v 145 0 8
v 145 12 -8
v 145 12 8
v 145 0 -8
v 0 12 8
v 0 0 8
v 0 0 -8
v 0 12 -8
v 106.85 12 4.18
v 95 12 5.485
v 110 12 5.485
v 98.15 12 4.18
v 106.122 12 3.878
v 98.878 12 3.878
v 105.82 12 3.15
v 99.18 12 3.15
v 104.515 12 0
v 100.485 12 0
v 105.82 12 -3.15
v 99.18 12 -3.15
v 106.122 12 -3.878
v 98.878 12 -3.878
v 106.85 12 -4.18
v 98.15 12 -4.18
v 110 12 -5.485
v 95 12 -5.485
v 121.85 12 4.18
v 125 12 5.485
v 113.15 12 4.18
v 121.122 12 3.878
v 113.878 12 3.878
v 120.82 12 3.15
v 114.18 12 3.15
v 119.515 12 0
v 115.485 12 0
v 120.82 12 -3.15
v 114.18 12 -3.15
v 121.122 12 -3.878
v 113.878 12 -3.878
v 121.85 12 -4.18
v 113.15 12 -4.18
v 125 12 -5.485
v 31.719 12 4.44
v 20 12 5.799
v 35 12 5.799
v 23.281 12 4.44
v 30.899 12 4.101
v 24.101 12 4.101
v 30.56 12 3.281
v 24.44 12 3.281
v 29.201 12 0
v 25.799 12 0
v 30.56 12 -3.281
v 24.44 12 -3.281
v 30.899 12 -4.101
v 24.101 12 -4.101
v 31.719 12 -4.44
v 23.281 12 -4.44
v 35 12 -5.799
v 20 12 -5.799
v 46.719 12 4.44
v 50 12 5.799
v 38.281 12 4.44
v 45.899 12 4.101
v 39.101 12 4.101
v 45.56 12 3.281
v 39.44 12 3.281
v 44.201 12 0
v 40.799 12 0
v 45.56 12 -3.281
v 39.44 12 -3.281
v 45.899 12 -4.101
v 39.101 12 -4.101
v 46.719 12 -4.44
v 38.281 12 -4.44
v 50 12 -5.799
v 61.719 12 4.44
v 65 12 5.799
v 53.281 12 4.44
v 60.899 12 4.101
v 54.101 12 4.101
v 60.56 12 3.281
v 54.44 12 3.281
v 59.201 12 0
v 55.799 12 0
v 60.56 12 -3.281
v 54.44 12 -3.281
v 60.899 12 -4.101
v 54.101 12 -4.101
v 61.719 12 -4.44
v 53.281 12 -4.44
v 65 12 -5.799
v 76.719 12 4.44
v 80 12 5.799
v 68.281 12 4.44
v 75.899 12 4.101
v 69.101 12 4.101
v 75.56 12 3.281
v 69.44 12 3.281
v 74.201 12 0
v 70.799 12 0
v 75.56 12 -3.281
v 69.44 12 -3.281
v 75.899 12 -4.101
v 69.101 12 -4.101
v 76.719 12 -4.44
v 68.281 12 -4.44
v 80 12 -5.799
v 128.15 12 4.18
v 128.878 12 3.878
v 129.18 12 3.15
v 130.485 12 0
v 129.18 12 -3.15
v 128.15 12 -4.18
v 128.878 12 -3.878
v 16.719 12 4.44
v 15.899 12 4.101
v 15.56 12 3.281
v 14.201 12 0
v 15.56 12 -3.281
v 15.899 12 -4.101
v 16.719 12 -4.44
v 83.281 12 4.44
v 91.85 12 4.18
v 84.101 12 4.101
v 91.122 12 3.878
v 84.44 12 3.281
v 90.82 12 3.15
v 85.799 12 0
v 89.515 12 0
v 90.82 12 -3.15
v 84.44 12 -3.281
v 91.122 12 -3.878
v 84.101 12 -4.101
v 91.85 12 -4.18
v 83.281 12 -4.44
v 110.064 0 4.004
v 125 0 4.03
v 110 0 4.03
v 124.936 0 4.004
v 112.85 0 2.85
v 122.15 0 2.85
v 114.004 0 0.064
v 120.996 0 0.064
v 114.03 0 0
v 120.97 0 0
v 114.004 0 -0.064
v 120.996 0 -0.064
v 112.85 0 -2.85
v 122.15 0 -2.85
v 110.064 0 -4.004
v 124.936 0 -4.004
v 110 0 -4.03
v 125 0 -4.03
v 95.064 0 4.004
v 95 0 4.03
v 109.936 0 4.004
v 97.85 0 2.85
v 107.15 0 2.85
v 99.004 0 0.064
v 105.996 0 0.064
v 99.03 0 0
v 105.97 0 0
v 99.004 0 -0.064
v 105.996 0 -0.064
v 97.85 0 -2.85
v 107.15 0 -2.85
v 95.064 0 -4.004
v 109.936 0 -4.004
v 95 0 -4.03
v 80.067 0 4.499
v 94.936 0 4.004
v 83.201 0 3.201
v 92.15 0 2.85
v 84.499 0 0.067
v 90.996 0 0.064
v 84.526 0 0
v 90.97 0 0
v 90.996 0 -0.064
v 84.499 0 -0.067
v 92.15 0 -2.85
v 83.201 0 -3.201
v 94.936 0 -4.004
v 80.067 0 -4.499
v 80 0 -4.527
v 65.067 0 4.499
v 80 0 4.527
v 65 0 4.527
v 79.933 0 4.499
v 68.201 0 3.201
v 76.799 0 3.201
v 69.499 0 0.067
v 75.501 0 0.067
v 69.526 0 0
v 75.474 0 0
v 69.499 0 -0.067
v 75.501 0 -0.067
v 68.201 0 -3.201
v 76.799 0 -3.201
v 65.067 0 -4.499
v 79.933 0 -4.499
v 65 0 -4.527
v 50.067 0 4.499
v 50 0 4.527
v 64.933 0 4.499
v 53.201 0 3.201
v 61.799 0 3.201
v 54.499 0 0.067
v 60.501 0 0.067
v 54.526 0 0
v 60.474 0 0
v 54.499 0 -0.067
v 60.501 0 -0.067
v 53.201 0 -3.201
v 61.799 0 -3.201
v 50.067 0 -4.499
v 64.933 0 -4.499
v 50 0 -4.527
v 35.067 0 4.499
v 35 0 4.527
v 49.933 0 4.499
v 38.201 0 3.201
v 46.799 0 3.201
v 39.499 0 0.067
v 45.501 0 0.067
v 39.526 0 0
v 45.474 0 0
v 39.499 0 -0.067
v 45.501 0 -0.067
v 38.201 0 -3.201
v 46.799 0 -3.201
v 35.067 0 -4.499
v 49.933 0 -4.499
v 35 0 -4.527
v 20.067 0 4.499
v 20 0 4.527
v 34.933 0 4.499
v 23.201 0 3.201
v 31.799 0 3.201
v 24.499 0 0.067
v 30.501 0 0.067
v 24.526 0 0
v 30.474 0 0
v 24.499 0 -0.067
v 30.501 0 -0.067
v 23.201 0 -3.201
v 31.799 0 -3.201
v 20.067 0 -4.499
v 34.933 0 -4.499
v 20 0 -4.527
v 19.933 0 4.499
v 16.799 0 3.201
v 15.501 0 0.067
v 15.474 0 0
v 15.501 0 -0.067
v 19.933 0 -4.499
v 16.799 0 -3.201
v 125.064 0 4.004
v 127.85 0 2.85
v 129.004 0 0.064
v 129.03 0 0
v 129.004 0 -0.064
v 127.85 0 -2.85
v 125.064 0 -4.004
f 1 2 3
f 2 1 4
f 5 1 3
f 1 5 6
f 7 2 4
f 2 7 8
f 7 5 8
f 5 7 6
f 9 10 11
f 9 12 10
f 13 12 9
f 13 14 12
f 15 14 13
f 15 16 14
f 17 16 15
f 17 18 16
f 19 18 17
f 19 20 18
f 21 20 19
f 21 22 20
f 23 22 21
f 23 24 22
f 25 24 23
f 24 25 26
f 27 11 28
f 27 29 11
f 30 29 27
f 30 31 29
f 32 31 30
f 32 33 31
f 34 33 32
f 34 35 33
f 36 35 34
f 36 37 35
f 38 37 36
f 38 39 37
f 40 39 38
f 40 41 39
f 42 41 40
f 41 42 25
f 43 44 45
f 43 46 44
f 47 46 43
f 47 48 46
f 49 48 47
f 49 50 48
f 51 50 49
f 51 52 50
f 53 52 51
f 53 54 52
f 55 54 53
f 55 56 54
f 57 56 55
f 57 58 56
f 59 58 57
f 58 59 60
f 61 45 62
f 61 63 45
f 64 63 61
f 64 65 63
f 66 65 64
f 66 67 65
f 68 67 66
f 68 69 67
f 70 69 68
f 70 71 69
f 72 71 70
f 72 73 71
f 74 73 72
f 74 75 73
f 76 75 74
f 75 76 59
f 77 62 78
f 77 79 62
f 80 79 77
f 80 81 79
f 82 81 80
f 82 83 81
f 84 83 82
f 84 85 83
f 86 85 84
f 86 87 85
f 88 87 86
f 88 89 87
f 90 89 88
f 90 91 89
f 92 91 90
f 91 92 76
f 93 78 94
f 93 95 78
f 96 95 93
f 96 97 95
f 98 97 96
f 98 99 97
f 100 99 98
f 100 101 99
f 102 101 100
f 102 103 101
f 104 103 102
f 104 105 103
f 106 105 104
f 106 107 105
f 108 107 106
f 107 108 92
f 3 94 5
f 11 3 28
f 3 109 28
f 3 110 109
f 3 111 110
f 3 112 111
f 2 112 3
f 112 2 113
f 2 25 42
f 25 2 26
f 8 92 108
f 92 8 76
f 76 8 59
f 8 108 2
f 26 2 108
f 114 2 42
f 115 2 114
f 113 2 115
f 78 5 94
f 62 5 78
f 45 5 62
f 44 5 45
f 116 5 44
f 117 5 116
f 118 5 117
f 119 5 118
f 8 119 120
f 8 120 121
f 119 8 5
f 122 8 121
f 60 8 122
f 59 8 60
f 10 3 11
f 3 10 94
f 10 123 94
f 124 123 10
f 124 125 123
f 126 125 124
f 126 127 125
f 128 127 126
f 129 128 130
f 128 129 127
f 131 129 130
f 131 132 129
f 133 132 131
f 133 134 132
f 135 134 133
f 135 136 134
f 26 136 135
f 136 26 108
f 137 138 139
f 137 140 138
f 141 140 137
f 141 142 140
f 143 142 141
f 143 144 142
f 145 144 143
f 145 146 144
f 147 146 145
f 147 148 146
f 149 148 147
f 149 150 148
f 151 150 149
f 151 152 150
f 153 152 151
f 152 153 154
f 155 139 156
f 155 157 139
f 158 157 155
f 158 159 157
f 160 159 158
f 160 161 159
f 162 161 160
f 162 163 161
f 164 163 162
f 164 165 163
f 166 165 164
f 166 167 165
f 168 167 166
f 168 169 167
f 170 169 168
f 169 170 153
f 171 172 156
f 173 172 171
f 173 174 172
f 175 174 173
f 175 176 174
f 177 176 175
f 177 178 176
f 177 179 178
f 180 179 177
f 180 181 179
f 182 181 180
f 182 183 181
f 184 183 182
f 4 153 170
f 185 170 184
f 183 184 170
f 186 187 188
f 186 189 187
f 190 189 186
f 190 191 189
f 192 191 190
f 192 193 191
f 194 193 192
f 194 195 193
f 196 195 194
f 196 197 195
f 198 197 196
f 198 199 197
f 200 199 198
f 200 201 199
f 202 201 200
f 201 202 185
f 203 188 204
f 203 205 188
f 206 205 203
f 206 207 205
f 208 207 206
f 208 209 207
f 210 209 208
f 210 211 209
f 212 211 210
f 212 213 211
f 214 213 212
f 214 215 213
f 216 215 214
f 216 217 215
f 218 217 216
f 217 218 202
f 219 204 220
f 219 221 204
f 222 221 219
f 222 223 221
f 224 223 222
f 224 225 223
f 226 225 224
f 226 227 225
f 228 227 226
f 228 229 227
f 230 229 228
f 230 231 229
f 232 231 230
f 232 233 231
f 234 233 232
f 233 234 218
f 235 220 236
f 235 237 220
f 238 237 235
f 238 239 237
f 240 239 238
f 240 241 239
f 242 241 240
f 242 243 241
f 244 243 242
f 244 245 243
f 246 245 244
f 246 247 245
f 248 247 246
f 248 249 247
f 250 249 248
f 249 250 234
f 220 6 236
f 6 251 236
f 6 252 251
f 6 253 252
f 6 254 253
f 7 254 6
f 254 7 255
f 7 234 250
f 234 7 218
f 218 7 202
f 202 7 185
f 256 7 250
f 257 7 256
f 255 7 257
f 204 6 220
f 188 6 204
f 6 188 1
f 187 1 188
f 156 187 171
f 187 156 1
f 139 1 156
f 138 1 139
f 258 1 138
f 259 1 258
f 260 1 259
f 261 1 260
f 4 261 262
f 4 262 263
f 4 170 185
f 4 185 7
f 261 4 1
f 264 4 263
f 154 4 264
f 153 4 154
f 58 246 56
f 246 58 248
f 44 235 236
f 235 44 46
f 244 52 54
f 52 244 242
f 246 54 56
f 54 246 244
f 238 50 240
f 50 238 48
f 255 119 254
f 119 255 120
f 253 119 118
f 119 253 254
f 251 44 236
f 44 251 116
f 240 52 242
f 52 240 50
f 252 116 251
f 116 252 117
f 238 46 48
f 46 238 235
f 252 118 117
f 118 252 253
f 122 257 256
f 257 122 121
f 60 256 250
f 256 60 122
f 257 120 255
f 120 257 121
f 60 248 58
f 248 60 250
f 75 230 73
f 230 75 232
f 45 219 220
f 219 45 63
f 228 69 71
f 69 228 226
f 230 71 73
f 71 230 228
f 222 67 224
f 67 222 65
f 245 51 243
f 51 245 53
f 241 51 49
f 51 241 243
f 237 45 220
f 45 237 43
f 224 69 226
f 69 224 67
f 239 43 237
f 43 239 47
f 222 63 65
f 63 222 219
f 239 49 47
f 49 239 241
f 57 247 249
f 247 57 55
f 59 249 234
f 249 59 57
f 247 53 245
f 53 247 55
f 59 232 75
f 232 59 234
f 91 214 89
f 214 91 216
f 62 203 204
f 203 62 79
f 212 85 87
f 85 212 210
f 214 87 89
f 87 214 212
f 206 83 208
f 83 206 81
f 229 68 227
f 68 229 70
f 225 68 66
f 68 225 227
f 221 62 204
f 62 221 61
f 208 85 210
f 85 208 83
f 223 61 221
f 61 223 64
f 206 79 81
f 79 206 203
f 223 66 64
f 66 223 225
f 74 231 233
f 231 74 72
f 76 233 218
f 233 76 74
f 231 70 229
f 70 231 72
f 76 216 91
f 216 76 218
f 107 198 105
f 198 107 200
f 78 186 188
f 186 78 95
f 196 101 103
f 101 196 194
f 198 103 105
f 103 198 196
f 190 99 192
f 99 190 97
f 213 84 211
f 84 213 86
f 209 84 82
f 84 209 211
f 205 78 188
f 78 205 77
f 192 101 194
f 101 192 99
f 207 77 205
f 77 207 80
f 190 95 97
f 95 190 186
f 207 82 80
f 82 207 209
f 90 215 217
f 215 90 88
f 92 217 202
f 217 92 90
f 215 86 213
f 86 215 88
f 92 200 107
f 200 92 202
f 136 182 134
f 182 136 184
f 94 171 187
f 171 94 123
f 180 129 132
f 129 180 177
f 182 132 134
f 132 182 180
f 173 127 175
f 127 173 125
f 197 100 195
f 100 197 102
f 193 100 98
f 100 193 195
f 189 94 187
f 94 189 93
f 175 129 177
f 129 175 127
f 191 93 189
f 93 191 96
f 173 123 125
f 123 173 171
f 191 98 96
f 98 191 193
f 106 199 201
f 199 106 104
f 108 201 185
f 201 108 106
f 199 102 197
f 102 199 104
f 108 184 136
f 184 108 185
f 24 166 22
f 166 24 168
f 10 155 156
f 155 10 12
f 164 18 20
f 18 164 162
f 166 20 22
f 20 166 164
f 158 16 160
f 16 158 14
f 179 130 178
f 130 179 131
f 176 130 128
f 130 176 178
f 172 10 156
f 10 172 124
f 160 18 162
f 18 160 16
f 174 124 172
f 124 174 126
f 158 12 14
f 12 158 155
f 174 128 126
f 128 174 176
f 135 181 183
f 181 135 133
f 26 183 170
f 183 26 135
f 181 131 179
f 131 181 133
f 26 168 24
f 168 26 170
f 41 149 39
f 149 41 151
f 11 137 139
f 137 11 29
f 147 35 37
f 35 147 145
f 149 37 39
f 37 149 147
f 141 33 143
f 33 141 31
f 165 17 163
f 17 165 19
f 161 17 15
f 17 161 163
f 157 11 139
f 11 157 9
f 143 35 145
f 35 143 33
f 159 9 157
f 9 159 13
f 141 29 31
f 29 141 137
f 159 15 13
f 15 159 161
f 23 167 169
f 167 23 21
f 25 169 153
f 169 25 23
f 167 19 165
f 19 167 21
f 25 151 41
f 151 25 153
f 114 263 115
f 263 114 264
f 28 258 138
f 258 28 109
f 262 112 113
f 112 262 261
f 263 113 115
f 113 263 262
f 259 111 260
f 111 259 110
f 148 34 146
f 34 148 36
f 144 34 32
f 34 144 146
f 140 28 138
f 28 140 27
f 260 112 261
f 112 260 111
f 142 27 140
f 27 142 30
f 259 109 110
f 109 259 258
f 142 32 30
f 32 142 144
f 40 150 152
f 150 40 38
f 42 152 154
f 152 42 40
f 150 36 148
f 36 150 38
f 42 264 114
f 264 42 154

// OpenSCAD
//cube([55,12,16]);

module lg_nongon() {
translate([0,-.25,0])
  rotate([-90,0,0])
  cylinder(d1=9, 
           d2=12.5, 
           h=16.5, 
           $fn=8);    
}

module sm_nongon() {
translate([0,-.25,0])
  rotate([-90,0,0])
  cylinder(d1=8, 
           d2=12, 
           h=16.5, 
           $fn=8);    
}

module beam() {
translate([0,0,-8])
  cube([145,12,16]);  
  //cube([55,12,16]); //Test Beam
}

difference() {
beam();
  translate([20,0,0]) lg_nongon();
  translate([35,0,0]) lg_nongon();
  translate([50,0,0]) lg_nongon();
  translate([65,0,0]) lg_nongon();
  translate([80,0,0]) lg_nongon();
  translate([95,0,0]) sm_nongon();
  translate([110,0,0]) sm_nongon();
  translate([125,0,0]) sm_nongon();
}
